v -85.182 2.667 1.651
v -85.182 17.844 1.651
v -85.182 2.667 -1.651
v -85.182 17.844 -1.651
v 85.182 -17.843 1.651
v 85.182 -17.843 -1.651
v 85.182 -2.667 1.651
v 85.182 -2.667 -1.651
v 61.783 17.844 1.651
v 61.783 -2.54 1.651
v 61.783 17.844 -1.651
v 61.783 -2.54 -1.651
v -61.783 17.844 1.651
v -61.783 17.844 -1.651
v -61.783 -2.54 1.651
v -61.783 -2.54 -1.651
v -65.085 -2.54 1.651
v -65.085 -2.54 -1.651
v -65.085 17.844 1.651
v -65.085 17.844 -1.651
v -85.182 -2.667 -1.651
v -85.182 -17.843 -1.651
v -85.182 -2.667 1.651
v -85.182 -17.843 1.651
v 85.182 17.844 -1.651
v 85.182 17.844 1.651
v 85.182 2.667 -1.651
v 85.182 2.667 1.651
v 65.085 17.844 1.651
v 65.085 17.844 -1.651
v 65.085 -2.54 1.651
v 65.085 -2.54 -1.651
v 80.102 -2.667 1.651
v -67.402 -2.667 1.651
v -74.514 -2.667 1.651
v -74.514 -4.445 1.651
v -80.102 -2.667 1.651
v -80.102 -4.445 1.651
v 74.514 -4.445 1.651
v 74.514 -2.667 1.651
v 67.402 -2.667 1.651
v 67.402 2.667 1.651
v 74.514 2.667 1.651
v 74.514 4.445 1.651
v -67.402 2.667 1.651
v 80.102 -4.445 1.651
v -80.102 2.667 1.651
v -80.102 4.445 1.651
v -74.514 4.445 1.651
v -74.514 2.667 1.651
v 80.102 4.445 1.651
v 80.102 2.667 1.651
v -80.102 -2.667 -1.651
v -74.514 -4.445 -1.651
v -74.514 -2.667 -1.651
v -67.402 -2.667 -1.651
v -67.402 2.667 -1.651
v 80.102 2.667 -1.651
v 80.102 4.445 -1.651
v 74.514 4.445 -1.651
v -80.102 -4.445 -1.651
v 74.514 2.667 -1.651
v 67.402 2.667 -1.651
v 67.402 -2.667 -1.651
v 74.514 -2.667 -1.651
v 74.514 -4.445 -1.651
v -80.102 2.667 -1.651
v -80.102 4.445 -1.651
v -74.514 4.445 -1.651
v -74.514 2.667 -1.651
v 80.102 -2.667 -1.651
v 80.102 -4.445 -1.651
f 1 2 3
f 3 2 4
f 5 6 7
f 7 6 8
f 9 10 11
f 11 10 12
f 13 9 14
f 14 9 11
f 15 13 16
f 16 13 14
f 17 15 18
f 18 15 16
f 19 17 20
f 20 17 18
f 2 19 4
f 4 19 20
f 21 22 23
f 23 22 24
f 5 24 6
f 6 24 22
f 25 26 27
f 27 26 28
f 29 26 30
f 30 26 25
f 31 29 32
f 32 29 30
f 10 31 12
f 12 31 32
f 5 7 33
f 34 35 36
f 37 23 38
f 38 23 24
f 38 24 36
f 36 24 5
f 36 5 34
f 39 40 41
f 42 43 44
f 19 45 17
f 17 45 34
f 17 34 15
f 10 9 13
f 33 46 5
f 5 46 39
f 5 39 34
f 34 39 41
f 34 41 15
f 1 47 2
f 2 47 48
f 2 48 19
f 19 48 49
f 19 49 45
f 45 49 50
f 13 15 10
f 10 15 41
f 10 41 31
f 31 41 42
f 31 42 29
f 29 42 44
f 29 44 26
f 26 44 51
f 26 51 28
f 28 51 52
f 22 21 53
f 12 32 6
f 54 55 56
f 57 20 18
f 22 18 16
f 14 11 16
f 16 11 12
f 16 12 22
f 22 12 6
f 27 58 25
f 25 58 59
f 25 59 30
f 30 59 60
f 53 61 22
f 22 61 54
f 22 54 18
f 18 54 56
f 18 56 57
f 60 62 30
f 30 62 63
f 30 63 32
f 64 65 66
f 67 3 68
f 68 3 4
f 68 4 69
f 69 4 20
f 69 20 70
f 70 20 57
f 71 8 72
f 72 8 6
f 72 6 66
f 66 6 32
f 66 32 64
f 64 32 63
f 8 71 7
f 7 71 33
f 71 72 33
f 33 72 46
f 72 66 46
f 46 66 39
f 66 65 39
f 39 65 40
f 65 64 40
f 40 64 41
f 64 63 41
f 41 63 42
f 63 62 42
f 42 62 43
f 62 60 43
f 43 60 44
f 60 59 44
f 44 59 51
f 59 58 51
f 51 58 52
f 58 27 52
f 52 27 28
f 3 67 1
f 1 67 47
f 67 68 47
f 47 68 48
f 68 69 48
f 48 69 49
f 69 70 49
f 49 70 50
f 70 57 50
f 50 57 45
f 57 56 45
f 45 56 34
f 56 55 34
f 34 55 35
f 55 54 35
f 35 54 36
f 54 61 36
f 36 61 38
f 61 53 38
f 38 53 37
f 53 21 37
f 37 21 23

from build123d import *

# Parameters (mm, degrees)
BOSS_EXTRUDE1_DEPTH = 1.651
CUT_EXTRUDE1_DEPTH  = 4.302


with BuildPart() as part:
    # Sketch1 → Boss-Extrude1 (new body, symmetric)
    with BuildSketch(Plane.XY):
        Polygon((85.181948, -17.8435), (85.181948, 17.8435), (65.084948, 17.8435), (65.084948, -2.54), (61.782948, -2.54), (61.782948, 17.8435), (-61.782948, 17.8435), (-61.782948, -2.54), (-65.084948, -2.54), (-65.084948, 17.8435), (-85.181948, 17.8435), (-85.181948, -17.8435), align=None)
    extrude(amount=BOSS_EXTRUDE1_DEPTH, both=True)

    # Sketch2 → Cut-Extrude1 (cut, through all)
    with BuildSketch(Plane.XY.offset(1.651)):
        Polygon((85.181948, 2.667), (80.101948, 2.667), (80.101948, 4.445), (74.513948, 4.445), (74.513948, 2.667), (67.401948, 2.667), (67.401948, -2.667), (74.513948, -2.667), (74.513948, -4.445), (80.101948, -4.445), (80.101948, -2.667), (85.181948, -2.667), align=None)
        Polygon((-85.181948, -2.667), (-80.101948, -2.667), (-80.101948, -4.445), (-74.513948, -4.445), (-74.513948, -2.667), (-67.401948, -2.667), (-67.401948, 2.667), (-74.513948, 2.667), (-74.513948, 4.445), (-80.101948, 4.445), (-80.101948, 2.667), (-85.181948, 2.667), align=None)
    extrude(amount=-CUT_EXTRUDE1_DEPTH, mode=Mode.SUBTRACT)


solid = part.part
